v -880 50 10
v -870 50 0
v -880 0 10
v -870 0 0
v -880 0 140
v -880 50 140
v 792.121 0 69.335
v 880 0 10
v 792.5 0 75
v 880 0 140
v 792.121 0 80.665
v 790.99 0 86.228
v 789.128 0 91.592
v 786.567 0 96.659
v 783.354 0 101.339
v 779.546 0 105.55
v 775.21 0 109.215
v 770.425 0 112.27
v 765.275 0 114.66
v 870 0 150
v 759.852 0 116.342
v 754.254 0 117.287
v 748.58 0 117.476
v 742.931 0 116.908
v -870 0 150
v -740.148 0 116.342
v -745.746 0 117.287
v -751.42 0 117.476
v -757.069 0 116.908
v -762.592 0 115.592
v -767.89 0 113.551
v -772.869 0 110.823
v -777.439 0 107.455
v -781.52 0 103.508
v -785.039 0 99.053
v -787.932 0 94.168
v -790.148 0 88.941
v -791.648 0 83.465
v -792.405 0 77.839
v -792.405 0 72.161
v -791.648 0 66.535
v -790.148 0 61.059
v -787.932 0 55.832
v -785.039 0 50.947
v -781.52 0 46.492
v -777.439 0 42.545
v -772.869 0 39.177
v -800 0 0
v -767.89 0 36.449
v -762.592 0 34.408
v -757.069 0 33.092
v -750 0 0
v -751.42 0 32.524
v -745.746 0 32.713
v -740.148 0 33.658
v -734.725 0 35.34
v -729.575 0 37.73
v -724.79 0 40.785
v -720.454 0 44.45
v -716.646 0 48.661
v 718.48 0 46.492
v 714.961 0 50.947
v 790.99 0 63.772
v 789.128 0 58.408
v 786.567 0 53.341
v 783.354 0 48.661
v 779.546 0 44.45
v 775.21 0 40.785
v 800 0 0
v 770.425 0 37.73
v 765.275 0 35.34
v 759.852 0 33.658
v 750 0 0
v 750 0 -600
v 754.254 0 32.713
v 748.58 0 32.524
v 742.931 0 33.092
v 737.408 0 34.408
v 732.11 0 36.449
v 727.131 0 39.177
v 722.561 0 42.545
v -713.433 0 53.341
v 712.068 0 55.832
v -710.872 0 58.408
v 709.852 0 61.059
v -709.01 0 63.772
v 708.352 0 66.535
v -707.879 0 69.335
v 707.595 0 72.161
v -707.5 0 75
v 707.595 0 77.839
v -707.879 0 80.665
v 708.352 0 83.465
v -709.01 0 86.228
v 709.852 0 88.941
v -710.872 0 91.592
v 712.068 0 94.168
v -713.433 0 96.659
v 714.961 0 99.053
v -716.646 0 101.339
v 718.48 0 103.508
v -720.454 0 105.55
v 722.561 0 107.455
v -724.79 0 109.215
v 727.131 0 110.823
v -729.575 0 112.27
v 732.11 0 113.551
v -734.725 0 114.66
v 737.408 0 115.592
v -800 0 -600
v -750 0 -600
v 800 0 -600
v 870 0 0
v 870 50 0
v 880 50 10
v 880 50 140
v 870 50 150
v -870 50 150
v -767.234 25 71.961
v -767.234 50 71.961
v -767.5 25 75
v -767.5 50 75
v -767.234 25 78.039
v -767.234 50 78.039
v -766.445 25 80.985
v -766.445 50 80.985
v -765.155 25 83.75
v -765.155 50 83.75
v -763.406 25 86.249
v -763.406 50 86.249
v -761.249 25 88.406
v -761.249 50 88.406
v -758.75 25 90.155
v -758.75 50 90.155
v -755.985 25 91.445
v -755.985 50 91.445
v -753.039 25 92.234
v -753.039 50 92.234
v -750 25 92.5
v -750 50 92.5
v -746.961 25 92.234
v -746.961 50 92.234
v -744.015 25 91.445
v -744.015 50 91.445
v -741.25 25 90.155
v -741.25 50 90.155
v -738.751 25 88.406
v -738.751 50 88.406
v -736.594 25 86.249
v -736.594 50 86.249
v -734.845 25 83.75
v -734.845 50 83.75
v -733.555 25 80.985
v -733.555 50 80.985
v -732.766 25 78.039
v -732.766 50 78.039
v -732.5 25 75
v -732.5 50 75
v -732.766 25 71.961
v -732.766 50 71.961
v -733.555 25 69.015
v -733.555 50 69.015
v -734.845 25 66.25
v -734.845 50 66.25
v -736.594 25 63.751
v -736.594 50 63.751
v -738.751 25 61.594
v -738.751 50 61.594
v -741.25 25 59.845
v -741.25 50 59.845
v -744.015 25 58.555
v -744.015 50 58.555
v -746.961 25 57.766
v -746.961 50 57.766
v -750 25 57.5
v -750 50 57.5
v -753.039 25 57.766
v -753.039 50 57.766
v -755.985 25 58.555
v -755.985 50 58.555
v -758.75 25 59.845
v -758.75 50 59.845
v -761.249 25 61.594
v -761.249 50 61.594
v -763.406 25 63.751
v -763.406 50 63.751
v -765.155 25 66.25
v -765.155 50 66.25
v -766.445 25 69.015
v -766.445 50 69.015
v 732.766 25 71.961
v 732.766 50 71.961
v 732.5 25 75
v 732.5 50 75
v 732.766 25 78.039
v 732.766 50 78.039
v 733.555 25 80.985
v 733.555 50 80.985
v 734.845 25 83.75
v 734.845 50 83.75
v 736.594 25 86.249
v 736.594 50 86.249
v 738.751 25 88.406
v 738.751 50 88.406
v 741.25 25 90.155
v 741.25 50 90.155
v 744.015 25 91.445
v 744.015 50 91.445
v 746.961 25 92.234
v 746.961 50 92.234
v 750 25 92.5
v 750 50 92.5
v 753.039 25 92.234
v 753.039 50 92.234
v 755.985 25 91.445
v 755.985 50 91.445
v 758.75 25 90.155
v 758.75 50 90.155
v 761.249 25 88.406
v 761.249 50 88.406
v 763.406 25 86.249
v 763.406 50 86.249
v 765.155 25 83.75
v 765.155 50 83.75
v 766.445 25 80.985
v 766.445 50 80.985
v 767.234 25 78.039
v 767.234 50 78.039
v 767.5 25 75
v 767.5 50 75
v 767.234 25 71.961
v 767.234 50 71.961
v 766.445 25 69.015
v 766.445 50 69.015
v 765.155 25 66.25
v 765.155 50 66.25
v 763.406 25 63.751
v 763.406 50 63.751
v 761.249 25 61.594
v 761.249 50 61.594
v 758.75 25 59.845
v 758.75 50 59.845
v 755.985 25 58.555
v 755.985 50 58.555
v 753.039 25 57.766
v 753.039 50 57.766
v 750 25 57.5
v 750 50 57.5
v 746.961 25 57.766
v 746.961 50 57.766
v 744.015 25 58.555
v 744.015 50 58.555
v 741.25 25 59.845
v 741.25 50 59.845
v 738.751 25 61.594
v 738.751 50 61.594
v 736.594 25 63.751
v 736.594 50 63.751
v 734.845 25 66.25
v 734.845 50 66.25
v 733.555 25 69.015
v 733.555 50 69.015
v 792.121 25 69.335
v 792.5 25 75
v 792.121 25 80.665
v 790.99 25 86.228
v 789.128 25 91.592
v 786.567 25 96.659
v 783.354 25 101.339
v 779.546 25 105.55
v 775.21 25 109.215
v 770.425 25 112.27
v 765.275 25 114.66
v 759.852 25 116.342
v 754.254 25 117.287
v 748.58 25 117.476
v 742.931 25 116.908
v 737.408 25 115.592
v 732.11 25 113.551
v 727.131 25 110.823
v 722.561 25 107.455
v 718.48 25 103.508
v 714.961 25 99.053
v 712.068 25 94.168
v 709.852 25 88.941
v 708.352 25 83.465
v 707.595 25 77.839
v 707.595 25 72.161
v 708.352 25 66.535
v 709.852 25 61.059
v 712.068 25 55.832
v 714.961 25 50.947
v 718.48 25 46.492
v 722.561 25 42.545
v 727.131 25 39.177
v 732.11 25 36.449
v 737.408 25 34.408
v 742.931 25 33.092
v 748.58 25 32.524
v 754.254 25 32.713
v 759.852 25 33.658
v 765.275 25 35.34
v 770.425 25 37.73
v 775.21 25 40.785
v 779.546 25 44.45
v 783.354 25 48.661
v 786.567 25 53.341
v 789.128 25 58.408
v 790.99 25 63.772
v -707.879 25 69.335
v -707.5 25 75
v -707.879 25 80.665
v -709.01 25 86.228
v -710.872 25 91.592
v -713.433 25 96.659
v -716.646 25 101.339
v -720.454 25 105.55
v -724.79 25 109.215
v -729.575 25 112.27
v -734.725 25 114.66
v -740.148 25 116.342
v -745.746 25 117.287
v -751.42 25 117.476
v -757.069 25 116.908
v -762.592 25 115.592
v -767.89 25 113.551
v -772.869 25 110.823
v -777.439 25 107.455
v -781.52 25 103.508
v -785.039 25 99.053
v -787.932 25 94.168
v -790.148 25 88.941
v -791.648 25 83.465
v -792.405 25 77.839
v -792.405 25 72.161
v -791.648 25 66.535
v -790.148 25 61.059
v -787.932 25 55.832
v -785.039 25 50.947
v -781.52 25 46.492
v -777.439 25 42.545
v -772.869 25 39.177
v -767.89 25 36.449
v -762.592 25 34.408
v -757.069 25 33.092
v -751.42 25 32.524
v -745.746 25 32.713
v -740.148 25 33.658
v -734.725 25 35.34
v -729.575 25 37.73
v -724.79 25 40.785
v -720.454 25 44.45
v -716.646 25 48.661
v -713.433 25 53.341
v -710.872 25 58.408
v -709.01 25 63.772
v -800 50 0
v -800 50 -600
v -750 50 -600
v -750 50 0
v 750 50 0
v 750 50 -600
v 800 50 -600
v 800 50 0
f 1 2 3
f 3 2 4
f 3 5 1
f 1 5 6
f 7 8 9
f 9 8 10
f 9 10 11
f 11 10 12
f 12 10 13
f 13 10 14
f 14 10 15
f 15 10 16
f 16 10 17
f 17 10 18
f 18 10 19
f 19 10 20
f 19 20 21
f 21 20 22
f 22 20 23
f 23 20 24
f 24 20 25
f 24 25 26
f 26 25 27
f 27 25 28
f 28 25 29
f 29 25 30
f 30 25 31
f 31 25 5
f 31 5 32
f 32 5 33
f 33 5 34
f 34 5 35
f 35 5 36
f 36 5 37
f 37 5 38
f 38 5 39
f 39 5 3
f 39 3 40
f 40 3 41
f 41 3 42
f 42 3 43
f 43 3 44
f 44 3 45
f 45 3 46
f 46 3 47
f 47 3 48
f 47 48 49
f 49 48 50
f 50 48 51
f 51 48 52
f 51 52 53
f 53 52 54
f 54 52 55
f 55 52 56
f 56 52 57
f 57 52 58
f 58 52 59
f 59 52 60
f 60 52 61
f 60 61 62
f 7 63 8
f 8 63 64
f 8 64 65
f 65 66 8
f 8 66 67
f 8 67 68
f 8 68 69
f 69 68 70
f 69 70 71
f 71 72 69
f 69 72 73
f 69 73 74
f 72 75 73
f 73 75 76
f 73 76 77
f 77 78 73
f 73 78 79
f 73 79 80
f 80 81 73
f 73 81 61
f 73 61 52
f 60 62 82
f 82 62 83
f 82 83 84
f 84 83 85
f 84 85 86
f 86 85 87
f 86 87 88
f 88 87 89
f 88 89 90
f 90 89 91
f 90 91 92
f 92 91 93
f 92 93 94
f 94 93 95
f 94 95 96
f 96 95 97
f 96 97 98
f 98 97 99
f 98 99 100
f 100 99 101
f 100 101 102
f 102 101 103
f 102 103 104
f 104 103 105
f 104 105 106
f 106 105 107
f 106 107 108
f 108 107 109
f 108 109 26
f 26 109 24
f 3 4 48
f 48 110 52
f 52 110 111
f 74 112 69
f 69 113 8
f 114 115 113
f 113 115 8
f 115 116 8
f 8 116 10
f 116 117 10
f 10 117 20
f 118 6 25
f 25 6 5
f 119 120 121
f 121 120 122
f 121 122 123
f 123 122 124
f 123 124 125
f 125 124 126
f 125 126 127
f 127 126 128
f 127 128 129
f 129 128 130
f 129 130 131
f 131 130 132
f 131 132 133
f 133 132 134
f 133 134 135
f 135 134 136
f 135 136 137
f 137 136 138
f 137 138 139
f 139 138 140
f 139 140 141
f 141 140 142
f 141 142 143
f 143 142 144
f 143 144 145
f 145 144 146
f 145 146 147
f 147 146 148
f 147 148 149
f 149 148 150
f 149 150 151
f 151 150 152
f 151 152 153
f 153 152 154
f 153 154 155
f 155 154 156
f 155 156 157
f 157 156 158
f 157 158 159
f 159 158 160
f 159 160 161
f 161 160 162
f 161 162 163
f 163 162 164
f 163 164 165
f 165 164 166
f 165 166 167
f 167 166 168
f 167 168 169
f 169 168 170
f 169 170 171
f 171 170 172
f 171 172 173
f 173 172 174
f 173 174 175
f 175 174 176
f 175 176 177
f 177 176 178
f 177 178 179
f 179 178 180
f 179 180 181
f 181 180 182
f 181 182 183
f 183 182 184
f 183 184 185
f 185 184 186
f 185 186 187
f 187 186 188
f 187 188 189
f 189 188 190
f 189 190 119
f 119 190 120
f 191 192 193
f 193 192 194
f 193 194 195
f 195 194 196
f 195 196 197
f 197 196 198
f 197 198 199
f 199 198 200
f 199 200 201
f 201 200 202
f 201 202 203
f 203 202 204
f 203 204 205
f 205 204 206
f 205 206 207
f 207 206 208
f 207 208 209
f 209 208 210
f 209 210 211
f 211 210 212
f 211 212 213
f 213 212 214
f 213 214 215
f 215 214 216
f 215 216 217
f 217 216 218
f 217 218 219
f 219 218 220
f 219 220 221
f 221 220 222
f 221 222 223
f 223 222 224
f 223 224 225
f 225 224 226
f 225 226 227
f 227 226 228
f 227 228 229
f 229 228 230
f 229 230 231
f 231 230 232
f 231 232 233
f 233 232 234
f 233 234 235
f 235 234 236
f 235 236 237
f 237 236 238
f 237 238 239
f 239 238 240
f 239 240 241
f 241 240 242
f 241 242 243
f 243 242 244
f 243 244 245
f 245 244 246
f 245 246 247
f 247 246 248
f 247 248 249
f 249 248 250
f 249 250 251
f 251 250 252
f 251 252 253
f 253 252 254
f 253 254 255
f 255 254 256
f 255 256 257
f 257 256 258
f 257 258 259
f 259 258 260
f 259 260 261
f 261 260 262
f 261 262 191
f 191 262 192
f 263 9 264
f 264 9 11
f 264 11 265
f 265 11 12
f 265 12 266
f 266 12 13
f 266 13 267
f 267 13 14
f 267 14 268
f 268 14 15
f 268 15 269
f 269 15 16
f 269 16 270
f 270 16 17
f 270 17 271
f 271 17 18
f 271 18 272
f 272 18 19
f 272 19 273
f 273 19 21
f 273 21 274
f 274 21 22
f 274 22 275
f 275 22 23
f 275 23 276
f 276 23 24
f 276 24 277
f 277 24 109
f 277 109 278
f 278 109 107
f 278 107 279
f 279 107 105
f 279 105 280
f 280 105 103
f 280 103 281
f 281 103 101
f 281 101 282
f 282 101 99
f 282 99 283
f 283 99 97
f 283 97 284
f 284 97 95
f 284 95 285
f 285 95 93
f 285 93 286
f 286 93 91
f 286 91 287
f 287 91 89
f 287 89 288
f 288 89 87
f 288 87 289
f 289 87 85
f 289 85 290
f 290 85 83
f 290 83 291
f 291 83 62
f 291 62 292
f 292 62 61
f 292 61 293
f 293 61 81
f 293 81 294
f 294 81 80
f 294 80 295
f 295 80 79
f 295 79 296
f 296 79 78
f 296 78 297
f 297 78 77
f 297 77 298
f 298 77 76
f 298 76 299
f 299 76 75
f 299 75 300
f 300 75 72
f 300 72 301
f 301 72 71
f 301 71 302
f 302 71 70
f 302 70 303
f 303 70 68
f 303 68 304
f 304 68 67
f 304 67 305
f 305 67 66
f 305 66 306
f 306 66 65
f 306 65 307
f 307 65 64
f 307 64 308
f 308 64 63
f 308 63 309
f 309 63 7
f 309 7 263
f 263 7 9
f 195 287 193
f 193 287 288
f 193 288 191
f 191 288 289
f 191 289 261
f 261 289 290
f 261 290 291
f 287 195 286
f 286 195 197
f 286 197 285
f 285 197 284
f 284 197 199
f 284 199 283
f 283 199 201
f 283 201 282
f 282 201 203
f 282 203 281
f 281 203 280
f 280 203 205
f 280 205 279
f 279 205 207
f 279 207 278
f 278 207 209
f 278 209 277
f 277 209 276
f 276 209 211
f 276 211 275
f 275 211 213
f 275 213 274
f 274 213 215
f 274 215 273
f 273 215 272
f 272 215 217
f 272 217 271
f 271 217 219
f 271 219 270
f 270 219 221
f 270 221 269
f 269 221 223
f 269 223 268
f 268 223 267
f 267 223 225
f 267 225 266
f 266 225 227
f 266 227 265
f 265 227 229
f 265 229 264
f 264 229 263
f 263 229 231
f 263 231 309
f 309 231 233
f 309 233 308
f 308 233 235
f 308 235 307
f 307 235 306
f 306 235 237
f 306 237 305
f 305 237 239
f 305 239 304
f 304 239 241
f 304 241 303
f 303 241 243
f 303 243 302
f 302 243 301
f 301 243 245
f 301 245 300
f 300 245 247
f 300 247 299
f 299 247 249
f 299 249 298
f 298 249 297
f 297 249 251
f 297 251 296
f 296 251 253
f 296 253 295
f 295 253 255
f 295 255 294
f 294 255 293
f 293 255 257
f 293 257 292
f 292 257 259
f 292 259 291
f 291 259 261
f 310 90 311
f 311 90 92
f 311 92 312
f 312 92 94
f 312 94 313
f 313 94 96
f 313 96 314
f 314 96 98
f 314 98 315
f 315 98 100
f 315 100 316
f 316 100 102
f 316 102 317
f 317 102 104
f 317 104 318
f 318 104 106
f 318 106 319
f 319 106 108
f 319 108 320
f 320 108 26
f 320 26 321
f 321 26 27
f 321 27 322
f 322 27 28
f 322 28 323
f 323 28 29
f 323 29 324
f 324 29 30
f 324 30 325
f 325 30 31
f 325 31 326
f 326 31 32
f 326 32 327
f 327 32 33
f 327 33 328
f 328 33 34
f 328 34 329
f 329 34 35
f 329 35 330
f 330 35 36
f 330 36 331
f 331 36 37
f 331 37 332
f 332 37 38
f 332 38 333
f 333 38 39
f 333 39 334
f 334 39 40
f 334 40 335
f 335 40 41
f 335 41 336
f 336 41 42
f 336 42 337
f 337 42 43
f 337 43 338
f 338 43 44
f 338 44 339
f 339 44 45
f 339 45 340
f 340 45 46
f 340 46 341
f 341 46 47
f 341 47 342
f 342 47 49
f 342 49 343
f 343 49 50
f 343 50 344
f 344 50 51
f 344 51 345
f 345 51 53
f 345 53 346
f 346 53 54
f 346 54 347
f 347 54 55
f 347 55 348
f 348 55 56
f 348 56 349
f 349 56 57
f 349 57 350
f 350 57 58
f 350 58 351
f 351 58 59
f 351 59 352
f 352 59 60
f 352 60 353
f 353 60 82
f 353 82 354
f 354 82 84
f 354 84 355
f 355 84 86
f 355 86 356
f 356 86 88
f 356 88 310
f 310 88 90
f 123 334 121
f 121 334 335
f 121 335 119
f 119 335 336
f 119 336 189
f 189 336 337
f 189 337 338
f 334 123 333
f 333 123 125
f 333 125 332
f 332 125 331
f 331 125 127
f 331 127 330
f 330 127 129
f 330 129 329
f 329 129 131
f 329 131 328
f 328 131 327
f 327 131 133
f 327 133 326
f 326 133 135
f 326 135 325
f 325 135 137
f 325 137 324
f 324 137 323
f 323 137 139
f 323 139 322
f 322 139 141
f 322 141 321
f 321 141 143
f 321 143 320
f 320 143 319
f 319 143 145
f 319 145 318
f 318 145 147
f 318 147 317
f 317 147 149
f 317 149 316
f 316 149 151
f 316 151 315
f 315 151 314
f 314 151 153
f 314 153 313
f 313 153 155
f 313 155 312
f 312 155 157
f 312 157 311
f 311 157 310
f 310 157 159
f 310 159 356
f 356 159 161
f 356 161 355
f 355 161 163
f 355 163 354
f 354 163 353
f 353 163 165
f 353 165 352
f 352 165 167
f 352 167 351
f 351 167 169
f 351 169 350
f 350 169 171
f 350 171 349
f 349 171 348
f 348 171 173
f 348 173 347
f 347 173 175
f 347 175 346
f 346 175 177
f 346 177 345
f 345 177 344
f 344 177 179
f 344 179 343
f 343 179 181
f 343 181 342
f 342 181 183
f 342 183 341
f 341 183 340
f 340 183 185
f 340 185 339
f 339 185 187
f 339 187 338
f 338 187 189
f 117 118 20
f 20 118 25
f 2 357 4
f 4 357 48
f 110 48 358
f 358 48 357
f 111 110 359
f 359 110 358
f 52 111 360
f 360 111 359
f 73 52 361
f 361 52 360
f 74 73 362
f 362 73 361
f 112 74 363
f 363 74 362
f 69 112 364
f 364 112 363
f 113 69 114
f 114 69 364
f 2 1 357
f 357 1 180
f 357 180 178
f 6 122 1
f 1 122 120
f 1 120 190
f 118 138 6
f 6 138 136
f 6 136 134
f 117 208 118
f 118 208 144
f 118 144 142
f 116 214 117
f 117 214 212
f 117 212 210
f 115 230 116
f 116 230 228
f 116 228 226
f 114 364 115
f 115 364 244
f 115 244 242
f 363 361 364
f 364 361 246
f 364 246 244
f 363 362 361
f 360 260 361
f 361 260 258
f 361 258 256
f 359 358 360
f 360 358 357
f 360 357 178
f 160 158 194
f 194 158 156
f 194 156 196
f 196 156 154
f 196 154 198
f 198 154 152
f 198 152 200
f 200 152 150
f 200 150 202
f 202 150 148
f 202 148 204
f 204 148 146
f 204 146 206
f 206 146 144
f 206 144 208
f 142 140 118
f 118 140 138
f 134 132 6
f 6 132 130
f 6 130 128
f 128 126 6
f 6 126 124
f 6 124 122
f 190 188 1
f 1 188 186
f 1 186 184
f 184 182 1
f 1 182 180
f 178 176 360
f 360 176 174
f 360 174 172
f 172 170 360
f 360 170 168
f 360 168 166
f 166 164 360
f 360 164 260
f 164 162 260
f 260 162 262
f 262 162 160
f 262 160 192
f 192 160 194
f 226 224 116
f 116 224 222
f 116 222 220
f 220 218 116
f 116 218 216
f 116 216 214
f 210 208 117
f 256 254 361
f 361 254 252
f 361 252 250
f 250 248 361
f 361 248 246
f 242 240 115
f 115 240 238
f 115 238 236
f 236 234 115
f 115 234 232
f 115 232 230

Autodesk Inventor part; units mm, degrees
ref_plane "YZ Plane" through (0, 0, 0) normal (1, 0, 0) x (0, 1, 0)
ref_plane "XZ Plane" through (0, 0, 0) normal (0, 1, 0) x (-1, 0, 0)
ref_plane "XY Plane" through (0, 0, 0) normal (0, 0, 1) x (1, 0, 0)
sketch "Skizze1" plane through (0, 0, 0) normal (0, 1, 0) x (-1, 0, 0)
  line L0 (800, 0) -> (800, -600)
  line L1 (800, -600) -> (750, -600)
  line L2 (750, -600) -> (750, 0)
  line L3 (750, 0) -> (-750, 0)
  line L4 (-750, 0) -> (-750, -600)
  line L5 (-750, -600) -> (-800, -600)
  line L6 (-800, -600) -> (-800, 0)
  line L7 (-800, 0) -> (-880, 0)
  line L8 (-880, 0) -> (-880, 150)
  line L9 (-880, 150) -> (880, 150)
  line L10 (880, 150) -> (880, 0)
  line L11 (880, 0) -> (800, 0)
  line L12 (0, -750) -> (0, 300) projected
  point P0 (0, 0)
  dimension "d0" = 50
  dimension "d1" = 600
  dimension "d2" = 150
  dimension "d3" = 1500
  dimension "d4" = 80
extrude "Extrusion1" add sketch "Skizze1" along normal blind 50
sketch "Skizze2" plane through (0, 0, 0) normal (0, -1, 0) x (1, 0, 0)
  circle A0 centre (-750, 75) radius 42.5
  circle A1 centre (750, 75) radius 42.5
  line L0 (0, -750) -> (0, 300) projected
  line L1 (750, 0) -> (-750, 0) projected
  point P0 (0, 0)
  dimension "d7" = 85
  dimension "d8" = 85
  dimension "d9" = 1500
  dimension "d10" = 75
extrude "Extrusion2" cut sketch "Skizze2" against normal blind 25
sketch "Skizze3" plane through (0, 50, 0) normal (0, 1, 0) x (1, 0, 0)
  circle A0 centre (750, -75) radius 42.5 projected
  circle A1 centre (-750, -75) radius 42.5 projected
  circle A2 centre (750, -75) radius 17.5
  circle A3 centre (-750, -75) radius 17.5
  point P0 (0, 0)
  dimension "d13" = 35
  dimension "d14" = 35
extrude "Extrusion3" cut sketch "Skizze3" against normal through all contours A2 | A3
chamfer "Fase1" distance 10 angle 45 4 edges at (-880, 25, 150) (880, 25, 150) (880, 25, 0) (-880, 25, 0)
equation "\"d8\" = d7"
properties part number "Gestell_Seite"
